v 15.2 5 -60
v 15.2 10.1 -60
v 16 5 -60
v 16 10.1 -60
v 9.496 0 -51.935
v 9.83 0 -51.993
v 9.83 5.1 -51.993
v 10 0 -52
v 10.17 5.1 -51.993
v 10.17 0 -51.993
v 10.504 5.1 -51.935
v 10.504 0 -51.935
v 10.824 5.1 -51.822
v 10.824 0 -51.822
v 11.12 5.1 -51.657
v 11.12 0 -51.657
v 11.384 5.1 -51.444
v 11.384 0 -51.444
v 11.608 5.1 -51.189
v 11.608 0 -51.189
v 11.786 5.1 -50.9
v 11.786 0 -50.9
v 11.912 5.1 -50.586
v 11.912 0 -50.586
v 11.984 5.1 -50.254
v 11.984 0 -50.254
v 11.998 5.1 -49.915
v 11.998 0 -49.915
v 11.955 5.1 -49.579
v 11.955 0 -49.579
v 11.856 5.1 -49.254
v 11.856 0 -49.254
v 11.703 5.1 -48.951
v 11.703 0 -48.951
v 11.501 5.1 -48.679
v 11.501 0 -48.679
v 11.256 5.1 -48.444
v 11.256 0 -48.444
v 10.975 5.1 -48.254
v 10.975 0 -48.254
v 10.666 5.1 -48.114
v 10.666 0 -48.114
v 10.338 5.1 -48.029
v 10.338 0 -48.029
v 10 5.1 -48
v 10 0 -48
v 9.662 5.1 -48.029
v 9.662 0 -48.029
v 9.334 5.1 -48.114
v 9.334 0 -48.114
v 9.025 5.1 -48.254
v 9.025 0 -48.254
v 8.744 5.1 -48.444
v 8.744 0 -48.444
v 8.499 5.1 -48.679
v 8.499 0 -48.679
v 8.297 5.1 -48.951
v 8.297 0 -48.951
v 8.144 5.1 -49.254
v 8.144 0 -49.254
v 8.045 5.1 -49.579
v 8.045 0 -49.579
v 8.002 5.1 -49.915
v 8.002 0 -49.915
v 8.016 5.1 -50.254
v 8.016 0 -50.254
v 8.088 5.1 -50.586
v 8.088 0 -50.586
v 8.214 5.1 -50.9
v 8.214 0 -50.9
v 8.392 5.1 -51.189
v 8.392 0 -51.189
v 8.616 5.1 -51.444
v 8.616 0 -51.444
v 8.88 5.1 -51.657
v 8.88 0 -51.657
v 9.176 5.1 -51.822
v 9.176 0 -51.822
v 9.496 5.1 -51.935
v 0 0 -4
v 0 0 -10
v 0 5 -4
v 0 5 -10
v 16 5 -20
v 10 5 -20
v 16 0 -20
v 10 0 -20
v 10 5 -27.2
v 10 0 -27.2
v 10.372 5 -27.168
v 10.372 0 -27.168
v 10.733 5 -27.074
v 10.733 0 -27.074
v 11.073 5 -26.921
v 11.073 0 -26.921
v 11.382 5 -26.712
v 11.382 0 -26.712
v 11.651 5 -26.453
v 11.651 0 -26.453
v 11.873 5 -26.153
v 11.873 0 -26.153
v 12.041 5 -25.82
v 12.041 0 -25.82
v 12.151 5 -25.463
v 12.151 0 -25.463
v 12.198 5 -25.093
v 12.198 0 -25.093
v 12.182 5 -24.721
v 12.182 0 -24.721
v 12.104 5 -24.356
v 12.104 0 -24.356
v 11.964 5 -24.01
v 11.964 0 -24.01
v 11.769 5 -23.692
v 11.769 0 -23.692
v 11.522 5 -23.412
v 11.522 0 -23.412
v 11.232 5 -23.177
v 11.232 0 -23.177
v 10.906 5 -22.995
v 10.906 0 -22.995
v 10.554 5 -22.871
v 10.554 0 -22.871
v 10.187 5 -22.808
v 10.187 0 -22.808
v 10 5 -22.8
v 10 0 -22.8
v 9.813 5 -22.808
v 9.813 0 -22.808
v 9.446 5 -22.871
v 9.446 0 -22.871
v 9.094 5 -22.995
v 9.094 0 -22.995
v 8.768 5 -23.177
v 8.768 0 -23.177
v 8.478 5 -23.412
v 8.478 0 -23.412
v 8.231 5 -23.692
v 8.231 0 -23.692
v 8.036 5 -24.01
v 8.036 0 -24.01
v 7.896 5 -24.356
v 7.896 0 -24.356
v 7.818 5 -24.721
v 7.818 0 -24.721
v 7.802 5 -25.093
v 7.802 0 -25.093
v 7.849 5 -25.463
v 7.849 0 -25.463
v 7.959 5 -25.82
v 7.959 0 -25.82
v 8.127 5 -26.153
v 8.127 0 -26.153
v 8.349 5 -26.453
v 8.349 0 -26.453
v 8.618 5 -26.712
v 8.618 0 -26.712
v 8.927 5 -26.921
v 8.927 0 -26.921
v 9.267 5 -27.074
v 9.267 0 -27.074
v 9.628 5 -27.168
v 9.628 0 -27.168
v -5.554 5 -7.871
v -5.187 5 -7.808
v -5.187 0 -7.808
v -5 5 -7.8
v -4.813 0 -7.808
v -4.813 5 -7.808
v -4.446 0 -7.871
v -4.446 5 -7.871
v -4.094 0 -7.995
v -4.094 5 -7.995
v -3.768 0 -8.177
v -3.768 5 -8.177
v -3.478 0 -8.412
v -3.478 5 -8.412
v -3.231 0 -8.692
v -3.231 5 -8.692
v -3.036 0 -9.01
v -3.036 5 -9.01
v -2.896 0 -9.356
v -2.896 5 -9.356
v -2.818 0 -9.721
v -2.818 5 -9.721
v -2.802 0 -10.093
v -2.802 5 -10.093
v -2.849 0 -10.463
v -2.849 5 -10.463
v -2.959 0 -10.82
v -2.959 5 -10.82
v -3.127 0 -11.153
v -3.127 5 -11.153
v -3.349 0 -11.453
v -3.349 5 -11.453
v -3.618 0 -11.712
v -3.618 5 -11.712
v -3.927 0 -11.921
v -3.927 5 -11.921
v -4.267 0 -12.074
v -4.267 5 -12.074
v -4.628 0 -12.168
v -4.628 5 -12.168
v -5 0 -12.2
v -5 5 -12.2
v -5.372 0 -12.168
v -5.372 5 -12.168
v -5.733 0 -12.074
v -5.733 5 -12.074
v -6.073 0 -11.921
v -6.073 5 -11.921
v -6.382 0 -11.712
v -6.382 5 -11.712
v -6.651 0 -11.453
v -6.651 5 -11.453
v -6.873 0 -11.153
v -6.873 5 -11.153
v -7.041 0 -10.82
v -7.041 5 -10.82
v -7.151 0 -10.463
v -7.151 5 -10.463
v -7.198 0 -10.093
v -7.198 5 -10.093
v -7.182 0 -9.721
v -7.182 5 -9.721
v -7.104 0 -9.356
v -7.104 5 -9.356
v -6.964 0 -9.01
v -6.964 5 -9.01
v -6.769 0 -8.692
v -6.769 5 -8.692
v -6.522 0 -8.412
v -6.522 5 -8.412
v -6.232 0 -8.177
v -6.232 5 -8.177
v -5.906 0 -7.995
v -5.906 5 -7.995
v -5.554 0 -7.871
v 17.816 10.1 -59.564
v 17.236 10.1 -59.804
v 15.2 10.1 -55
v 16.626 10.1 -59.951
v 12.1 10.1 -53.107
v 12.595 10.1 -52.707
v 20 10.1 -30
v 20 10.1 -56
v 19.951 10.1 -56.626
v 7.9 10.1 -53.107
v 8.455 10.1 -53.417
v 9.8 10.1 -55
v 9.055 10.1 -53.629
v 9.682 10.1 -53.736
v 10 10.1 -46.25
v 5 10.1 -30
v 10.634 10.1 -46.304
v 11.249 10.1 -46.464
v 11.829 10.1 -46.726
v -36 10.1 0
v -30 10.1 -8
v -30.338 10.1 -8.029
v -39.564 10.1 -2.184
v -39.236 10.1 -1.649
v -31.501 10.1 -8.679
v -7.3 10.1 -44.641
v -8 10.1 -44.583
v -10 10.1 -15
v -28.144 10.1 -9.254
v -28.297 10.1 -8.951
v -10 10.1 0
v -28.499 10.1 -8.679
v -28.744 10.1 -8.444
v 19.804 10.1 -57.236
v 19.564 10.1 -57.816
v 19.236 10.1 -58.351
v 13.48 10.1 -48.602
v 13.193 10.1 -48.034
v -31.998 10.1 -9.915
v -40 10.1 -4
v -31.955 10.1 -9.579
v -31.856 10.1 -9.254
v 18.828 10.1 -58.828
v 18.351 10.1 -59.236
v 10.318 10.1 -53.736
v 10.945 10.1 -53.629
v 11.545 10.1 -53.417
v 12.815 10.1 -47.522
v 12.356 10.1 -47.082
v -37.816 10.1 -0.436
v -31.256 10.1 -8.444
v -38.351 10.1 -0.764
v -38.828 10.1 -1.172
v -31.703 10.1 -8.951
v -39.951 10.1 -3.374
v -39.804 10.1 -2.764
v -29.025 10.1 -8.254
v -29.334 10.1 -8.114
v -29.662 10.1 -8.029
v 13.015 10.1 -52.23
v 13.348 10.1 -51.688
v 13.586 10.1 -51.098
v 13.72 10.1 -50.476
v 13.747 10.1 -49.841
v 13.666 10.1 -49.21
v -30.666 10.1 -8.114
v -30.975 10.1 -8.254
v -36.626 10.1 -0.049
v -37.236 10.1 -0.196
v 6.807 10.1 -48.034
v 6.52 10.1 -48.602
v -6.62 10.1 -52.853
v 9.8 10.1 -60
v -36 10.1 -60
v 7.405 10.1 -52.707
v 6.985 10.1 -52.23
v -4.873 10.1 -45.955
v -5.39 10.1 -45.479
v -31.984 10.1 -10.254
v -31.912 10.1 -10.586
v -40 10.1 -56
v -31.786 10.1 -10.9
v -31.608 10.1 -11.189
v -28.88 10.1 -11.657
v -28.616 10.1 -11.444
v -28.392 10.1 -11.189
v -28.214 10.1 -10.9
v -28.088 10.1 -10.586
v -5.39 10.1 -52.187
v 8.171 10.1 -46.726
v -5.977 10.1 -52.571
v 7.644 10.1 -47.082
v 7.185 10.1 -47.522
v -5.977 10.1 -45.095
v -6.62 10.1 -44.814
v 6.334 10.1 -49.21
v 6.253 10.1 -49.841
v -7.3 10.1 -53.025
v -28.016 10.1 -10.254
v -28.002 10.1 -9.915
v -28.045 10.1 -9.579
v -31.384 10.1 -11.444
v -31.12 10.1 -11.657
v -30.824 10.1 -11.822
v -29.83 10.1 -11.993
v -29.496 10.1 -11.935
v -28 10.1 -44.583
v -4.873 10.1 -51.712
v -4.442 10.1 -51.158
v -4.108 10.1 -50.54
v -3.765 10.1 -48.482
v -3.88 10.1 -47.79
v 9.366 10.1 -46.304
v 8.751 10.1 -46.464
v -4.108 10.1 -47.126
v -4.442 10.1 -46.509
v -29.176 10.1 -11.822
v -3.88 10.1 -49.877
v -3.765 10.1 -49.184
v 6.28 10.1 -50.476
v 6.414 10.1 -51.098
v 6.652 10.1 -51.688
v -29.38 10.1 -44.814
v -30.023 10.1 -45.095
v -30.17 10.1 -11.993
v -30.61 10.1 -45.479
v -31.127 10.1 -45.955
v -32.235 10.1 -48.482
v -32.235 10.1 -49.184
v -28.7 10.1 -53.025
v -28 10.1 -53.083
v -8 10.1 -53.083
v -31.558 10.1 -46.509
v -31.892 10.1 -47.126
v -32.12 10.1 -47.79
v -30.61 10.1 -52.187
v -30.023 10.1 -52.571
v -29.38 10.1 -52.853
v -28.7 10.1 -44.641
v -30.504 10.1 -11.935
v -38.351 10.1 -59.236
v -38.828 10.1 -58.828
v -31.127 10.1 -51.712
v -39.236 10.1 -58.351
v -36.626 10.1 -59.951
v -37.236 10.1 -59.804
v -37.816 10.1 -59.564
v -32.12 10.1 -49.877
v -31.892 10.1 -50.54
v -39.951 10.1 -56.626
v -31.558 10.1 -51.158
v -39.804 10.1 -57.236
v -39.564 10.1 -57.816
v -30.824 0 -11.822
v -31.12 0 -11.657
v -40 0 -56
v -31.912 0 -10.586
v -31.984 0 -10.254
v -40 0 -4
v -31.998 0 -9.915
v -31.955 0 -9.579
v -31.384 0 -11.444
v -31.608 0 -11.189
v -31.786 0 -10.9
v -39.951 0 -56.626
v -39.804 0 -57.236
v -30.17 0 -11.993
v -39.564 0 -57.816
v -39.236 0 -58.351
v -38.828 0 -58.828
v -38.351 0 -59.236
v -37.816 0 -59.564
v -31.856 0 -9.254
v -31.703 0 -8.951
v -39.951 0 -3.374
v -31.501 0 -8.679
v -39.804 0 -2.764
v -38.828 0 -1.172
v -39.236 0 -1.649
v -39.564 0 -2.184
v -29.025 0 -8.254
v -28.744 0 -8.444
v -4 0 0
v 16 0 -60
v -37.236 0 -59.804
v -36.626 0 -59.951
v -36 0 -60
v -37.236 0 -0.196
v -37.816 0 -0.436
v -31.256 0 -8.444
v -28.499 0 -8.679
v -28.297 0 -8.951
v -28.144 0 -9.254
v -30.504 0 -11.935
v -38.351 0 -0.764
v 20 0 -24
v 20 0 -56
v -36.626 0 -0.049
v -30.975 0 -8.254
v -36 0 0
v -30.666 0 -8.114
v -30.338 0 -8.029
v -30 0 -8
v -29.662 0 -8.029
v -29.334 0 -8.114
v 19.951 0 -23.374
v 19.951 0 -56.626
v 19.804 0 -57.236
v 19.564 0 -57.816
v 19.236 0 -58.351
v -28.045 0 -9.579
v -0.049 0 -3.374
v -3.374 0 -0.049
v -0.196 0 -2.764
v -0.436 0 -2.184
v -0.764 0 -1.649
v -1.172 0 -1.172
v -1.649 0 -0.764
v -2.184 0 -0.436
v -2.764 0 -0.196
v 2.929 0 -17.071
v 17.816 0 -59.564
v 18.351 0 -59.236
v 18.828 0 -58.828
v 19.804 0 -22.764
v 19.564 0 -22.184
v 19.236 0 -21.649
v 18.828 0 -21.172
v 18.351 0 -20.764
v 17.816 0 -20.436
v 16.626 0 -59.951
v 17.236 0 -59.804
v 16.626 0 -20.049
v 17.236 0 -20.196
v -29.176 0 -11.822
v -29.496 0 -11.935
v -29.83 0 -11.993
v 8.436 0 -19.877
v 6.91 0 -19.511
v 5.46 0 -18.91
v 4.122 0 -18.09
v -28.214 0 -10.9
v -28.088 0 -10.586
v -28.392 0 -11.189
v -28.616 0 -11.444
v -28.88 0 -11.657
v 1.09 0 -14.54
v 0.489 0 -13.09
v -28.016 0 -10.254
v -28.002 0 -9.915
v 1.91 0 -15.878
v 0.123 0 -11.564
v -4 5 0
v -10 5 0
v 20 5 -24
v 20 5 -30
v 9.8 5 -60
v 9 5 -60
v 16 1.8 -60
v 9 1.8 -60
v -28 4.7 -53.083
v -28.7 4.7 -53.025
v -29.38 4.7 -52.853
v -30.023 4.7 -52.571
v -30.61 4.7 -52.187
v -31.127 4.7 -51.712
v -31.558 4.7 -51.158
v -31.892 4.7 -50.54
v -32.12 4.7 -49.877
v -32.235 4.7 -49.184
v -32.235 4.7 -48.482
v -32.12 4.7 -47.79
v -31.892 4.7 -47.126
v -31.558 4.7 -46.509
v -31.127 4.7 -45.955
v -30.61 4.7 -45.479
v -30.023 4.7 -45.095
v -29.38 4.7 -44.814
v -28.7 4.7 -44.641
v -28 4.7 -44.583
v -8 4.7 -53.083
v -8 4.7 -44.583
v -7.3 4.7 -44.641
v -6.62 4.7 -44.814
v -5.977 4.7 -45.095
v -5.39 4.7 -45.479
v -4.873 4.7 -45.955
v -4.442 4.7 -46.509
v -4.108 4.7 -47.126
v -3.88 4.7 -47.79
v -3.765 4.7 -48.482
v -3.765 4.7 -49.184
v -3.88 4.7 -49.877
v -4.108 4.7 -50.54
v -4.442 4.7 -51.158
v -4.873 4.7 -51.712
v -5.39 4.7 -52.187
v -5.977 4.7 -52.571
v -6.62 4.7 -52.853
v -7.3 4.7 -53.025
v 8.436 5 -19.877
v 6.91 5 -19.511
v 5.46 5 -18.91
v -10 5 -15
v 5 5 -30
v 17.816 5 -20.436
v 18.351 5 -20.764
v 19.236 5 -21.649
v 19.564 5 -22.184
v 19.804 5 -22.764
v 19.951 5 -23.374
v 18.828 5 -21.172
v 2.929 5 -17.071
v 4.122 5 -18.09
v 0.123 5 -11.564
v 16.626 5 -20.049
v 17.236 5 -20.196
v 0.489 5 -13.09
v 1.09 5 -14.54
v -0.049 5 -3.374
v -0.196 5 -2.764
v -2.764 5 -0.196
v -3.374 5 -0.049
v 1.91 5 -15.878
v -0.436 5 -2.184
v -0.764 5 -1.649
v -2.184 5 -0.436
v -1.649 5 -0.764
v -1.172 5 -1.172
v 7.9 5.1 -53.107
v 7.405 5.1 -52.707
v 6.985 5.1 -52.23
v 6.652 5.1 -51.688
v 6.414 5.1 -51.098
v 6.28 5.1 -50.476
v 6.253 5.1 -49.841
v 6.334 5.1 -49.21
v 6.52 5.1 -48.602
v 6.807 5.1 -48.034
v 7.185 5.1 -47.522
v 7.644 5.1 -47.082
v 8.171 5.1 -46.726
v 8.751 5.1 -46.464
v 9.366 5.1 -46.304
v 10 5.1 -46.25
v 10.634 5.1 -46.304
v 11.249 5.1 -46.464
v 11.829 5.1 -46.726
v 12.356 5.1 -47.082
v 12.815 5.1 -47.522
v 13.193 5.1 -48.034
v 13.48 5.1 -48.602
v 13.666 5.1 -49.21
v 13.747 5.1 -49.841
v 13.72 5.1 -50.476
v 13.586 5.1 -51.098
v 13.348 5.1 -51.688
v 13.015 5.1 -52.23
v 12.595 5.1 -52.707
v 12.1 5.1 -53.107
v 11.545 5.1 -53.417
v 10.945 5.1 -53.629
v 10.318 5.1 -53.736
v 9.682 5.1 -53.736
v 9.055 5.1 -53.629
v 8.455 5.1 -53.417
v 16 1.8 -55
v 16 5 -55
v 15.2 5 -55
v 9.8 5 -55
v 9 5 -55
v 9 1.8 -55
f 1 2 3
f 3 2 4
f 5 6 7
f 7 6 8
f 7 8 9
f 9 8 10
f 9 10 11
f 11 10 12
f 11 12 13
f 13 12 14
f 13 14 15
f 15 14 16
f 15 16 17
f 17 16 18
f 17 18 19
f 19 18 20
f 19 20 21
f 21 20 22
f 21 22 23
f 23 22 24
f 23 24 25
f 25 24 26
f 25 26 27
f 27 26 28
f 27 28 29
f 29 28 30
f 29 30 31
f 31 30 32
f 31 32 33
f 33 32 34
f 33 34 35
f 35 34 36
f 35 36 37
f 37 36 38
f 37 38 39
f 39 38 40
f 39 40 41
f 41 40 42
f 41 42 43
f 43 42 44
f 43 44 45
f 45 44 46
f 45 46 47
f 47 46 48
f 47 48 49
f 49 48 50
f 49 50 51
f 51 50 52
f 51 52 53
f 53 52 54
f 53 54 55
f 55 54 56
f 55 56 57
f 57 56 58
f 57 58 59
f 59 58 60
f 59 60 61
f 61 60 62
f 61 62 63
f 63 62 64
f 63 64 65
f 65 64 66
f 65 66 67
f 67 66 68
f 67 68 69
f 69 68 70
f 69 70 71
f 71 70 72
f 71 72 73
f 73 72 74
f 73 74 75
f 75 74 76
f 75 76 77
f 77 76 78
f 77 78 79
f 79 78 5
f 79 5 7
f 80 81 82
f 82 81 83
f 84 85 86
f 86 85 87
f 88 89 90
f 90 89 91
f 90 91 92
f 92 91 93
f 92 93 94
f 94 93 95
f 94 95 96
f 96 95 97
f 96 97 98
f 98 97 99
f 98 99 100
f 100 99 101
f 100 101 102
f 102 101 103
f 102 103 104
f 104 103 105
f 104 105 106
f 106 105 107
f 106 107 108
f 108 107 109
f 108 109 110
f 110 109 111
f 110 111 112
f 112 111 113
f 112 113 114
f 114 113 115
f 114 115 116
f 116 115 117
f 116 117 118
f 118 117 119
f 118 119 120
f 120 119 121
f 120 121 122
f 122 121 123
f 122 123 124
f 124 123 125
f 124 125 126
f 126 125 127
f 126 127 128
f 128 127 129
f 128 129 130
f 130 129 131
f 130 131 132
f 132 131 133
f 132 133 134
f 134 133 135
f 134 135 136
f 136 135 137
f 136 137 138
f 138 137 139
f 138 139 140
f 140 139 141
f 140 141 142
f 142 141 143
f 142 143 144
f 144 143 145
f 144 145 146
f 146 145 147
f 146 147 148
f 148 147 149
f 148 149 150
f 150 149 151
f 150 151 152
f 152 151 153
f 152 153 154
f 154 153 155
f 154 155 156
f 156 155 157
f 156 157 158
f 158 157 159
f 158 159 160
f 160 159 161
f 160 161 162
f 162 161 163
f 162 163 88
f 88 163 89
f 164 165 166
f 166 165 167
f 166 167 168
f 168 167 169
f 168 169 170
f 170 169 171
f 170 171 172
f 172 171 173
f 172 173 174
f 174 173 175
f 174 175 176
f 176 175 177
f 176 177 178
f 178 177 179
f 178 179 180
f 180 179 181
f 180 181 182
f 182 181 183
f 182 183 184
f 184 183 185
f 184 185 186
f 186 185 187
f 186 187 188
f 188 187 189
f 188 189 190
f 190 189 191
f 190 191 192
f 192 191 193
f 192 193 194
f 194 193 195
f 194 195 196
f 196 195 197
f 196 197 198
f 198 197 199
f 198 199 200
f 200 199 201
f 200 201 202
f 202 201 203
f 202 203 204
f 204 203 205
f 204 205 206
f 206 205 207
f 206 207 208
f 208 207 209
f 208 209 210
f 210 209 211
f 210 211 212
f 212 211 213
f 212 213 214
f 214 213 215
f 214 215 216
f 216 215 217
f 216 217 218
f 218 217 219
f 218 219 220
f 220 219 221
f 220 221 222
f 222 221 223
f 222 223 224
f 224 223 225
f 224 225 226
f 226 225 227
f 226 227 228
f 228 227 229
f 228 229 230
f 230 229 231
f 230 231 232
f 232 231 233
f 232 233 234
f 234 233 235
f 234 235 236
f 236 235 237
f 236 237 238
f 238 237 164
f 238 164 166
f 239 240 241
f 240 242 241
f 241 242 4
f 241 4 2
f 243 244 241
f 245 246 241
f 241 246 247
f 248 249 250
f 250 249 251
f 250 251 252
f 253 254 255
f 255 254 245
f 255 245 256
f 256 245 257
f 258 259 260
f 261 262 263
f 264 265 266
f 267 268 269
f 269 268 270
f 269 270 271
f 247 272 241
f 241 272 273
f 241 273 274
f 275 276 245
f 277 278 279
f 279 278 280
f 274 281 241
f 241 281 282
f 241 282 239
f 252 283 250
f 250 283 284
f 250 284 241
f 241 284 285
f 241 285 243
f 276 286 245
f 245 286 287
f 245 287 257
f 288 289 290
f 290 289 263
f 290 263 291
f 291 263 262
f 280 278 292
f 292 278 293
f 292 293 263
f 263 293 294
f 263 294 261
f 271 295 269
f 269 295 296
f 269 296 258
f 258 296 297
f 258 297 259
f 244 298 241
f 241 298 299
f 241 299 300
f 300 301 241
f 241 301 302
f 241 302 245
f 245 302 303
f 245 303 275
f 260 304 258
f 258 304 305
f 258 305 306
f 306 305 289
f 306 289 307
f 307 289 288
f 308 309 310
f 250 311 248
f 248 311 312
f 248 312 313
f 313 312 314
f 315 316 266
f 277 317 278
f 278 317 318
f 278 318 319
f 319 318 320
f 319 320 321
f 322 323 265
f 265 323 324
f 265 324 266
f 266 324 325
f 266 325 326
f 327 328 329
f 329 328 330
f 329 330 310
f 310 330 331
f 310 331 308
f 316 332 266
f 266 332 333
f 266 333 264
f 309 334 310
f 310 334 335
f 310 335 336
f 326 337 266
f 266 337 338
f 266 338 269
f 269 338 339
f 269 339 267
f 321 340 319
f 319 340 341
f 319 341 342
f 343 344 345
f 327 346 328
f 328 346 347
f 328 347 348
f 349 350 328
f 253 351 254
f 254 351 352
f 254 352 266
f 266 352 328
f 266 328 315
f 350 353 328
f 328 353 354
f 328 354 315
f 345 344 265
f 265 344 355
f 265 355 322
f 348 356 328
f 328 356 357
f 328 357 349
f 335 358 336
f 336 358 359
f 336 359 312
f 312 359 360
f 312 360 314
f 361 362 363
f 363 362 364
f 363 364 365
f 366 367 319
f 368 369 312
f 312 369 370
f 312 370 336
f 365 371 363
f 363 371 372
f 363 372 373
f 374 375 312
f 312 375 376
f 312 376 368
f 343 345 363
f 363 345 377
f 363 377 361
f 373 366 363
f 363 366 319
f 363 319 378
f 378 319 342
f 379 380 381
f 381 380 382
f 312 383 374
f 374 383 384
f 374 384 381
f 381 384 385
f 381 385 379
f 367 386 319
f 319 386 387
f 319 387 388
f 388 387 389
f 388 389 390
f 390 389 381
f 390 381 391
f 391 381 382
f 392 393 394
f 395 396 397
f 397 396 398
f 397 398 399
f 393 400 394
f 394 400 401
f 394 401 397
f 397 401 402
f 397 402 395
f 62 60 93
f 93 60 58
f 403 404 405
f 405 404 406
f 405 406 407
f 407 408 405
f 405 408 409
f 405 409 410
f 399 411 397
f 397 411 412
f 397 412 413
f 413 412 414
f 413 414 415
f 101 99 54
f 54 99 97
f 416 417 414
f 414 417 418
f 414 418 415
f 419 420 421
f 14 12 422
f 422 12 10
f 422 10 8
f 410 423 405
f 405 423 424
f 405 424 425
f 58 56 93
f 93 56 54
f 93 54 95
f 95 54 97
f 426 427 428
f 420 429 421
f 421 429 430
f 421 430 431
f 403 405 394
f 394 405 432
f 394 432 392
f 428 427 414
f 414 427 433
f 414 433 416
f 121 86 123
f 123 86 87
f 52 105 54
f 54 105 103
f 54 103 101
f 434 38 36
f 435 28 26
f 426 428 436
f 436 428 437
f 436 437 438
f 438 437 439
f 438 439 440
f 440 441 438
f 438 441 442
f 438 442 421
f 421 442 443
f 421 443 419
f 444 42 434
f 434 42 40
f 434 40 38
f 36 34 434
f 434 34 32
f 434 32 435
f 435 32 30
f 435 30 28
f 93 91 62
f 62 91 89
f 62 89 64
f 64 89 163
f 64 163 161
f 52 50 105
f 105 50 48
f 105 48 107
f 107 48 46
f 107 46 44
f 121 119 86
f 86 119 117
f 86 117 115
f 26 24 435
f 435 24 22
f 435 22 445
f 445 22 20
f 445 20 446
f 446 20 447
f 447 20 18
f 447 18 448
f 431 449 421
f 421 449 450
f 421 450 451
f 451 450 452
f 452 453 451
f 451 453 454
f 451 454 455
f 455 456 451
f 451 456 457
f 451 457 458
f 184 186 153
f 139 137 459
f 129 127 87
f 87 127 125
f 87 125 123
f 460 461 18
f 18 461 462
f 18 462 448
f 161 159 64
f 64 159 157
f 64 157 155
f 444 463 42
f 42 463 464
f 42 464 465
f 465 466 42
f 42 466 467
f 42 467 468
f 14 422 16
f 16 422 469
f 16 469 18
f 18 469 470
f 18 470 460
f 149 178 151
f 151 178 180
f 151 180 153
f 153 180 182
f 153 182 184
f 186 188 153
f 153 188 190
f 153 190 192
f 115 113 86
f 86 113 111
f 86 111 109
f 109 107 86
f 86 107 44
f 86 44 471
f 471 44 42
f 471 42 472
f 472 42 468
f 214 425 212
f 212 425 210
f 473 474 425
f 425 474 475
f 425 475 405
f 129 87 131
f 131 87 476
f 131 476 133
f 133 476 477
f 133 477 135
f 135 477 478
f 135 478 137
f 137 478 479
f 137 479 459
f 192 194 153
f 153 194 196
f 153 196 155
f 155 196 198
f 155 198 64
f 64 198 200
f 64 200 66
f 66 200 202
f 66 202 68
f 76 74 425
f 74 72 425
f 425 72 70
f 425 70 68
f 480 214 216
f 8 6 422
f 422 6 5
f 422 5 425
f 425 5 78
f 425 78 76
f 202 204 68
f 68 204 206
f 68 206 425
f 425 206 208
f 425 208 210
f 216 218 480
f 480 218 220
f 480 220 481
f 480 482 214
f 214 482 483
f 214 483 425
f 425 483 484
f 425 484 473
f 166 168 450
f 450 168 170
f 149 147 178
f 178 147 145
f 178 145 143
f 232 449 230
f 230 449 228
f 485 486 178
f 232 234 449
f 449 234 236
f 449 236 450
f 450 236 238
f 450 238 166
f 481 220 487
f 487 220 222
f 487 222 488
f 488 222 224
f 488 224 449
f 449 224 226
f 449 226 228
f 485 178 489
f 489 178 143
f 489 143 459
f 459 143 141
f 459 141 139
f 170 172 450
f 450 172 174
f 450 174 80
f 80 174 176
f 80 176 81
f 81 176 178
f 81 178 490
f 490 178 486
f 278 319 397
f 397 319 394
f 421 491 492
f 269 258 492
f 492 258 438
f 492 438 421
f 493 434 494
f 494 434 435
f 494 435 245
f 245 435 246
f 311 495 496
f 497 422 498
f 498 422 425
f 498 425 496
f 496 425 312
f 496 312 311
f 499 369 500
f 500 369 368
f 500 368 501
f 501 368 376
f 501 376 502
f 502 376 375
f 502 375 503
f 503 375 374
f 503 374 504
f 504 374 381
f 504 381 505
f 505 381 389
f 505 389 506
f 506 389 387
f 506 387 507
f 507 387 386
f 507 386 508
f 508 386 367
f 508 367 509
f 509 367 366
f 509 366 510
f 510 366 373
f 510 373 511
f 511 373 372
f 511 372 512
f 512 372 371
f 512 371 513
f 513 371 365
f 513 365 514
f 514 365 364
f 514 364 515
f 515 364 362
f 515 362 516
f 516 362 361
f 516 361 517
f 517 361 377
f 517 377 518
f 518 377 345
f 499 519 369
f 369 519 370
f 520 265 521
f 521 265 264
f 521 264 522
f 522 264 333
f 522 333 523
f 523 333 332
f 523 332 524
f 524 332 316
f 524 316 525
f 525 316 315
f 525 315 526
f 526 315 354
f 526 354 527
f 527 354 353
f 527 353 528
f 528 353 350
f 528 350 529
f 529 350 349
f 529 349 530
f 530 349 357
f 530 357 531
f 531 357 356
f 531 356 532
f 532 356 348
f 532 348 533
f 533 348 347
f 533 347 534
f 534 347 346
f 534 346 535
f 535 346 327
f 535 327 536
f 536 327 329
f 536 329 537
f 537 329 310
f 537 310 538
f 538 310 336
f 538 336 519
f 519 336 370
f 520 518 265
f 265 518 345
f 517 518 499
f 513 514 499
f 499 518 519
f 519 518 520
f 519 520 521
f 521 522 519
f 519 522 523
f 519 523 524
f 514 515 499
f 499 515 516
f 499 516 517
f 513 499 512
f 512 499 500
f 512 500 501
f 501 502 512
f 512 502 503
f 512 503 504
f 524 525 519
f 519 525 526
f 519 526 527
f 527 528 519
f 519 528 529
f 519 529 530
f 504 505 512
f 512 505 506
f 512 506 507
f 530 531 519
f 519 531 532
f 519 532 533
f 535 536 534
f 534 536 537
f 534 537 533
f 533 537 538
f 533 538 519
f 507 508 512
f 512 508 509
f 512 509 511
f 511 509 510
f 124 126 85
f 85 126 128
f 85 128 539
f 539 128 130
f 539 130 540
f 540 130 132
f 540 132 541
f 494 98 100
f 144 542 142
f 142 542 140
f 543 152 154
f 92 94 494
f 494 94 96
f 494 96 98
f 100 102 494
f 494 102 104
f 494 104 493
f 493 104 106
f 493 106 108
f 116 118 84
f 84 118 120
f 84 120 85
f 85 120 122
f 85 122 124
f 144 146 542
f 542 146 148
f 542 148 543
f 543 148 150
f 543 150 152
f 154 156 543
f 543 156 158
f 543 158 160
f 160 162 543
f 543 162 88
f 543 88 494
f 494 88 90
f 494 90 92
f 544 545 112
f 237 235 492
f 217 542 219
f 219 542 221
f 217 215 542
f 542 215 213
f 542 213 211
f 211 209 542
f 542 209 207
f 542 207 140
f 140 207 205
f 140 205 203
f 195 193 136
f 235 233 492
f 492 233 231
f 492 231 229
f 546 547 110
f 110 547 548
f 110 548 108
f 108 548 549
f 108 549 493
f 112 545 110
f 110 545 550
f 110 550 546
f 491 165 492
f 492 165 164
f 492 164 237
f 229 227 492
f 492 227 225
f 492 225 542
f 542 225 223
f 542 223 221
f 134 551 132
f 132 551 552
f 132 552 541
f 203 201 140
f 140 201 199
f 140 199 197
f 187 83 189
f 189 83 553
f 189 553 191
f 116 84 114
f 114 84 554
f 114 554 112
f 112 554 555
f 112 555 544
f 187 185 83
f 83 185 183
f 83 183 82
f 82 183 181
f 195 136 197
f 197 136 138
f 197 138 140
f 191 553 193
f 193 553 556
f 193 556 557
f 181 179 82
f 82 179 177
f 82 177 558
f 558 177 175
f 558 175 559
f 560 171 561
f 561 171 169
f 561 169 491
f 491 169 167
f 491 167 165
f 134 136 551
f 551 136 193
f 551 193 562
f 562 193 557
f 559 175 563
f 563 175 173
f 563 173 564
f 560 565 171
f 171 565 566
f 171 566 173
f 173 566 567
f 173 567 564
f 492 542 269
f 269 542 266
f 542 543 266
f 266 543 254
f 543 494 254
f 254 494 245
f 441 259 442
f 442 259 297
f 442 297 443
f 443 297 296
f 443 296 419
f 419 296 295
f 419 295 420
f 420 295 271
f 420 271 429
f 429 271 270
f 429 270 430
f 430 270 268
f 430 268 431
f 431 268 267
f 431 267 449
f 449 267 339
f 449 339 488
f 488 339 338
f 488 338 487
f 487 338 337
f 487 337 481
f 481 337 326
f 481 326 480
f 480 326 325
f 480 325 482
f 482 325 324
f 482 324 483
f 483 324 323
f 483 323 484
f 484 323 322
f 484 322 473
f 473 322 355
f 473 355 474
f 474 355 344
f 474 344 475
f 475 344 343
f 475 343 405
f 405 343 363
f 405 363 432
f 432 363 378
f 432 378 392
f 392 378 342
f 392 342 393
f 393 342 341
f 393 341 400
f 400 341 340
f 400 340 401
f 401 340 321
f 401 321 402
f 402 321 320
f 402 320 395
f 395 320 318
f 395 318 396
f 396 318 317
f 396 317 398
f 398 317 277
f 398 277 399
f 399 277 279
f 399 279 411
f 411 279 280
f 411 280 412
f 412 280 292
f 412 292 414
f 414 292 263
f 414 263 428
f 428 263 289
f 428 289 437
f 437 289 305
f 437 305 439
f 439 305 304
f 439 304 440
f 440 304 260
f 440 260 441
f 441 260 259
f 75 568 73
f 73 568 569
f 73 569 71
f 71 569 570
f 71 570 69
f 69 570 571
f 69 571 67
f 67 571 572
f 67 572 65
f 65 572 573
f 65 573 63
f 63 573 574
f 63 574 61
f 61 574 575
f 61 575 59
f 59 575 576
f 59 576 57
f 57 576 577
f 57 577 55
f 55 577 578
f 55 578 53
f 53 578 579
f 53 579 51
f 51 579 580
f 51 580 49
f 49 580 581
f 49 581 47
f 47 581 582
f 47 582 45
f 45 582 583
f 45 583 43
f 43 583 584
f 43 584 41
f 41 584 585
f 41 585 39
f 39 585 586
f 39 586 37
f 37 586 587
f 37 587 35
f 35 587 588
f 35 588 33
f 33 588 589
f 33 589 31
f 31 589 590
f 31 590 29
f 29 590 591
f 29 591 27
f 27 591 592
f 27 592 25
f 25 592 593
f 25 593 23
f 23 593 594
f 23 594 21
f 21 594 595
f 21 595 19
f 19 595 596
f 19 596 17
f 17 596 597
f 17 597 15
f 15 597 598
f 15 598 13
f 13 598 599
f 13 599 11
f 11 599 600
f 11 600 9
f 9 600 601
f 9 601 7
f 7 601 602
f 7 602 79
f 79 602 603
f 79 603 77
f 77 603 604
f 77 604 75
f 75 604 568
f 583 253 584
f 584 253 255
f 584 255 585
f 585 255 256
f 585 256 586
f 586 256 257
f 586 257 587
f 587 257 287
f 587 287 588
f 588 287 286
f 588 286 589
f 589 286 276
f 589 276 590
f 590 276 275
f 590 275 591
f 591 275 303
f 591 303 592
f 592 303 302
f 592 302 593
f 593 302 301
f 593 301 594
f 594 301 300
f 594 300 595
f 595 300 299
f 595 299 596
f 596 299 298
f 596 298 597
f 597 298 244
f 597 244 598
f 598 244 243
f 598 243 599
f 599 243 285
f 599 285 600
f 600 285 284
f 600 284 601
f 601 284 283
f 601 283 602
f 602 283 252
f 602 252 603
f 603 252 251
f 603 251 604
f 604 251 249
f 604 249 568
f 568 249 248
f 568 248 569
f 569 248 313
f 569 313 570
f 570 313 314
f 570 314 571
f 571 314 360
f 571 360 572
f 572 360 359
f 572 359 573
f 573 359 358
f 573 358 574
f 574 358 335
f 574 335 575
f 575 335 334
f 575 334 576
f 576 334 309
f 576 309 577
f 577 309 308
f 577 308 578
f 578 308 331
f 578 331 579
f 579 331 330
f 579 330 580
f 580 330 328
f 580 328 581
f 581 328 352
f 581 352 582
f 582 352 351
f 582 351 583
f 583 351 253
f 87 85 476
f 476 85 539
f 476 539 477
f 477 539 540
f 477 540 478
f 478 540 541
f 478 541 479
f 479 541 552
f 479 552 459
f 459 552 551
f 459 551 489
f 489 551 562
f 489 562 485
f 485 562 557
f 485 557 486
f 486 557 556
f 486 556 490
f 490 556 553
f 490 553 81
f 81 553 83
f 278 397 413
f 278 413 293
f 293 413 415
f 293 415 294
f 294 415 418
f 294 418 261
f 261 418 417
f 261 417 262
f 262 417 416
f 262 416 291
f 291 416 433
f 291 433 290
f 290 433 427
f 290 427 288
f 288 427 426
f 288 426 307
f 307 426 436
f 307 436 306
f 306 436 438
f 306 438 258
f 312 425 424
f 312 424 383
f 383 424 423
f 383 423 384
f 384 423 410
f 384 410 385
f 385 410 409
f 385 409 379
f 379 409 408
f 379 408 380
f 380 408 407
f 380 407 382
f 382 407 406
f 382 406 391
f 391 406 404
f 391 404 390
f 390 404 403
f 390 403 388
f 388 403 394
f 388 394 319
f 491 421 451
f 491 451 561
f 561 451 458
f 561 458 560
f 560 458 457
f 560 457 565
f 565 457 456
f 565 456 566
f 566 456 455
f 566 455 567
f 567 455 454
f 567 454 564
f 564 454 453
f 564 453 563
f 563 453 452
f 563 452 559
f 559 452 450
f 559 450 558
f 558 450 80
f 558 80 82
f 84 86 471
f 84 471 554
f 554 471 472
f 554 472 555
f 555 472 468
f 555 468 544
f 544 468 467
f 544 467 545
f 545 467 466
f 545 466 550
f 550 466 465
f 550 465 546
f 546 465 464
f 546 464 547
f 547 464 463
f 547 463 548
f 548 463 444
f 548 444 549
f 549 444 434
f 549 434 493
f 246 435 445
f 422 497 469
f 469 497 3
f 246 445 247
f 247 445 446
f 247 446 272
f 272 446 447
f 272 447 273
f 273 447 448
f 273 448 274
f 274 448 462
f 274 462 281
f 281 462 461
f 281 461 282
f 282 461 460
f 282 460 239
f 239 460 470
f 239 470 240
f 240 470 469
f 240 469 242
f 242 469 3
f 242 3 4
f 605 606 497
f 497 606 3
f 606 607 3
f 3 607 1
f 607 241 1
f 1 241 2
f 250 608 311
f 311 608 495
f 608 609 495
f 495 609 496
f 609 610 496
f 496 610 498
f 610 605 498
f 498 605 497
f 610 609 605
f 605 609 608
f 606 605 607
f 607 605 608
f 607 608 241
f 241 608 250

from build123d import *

# Parameters (mm, degrees)
SKETCH1_R           = 2.2
BOSS_EXTRUDE1_DEPTH = 10.1
CUT_EXTRUDE2_DEPTH  = 5.4
CUT_EXTRUDE4_DEPTH  = 5.1
SKETCH9_R           = 2
CUT_EXTRUDE5_DEPTH  = 73.814902321
SKETCH10_R          = 3.75
CUT_EXTRUDE6_DEPTH  = 5
FILLET2_R           = 10
FILLET3_R           = 4
CUT_EXTRUDE7_DEPTH  = 5


with BuildPart() as part:
    # Sketch1 → Boss-Extrude1 (new body)
    with BuildSketch(Plane(origin=(0, 0, 0), x_dir=(1, 0, 0), z_dir=(0, 1, 0))):
        Polygon((0, 0), (0, 20), (20, 20), (20, 60), (-40, 60), (-40, 0), align=None)
        with Locations(Location((10, 25, 0), (0, 0, 270))):
            Circle(SKETCH1_R, mode=Mode.SUBTRACT)
        with Locations(Location((-5, 10, 0), (0, 0, 90))):
            Circle(SKETCH1_R, mode=Mode.SUBTRACT)
    extrude(amount=BOSS_EXTRUDE1_DEPTH)

    # Sketch4 → Cut-Extrude2 (cut)
    with BuildSketch(Plane(origin=(0, 10.1, 0), x_dir=(1, 0, 0), z_dir=(0, 1, 0))):
        with BuildLine():
            Line((-28, 53.083248844), (-8, 53.083248844))
            ThreePointArc((-8, 53.083248844), (-3.75, 48.833248844), (-8, 44.583248844))
            Line((-8, 44.583248844), (-28, 44.583248844))
            ThreePointArc((-28, 44.583248844), (-32.25, 48.833248844), (-28, 53.083248844))
        make_face()
    extrude(amount=-CUT_EXTRUDE2_DEPTH, mode=Mode.SUBTRACT)

    # Sketch7 → Cut-Extrude4 (cut)
    with BuildSketch(Plane(origin=(0, 10.1, 0), x_dir=(1, 0, 0), z_dir=(0, 1, 0))):
        Polygon((20, 0), (-10, 0), (-10, 15), (5, 30), (20, 30), align=None)
    extrude(amount=-CUT_EXTRUDE4_DEPTH, mode=Mode.SUBTRACT)

    # Sketch9 → Cut-Extrude5 (cut, through all)
    with BuildSketch(Plane(origin=(0, 10.1, 0), x_dir=(1, 0, 0), z_dir=(0, 1, 0))):
        with Locations(Location((-30, 10, 0), (0, 0, 270))):
            Circle(SKETCH9_R)
        with Locations(Location((10, 50, 0), (0, 0, 90))):
            Circle(SKETCH9_R)
    extrude(amount=-CUT_EXTRUDE5_DEPTH, mode=Mode.SUBTRACT)

    # Sketch10 → Cut-Extrude6 (cut)
    with BuildSketch(Plane(origin=(0, 10.1, 0), x_dir=(1, 0, 0), z_dir=(0, 1, 0))):
        with Locations(Location((10, 50, 0), (0, 0, 270))):
            Circle(SKETCH10_R)
    extrude(amount=-CUT_EXTRUDE6_DEPTH, mode=Mode.SUBTRACT)

    # Fillet2
    fillet2_edges = [part.edges().sort_by_distance(p)[0] for p in [
        (0, 2.5, -20),
    ]]
    fillet(fillet2_edges, radius=FILLET2_R)

    # Fillet3
    fillet3_edges = [part.edges().sort_by_distance(p)[0] for p in [
        (-40, 5.05, -60),
        (20, 5.05, -60),
        (-40, 5.05, 0),
        (20, 2.5, -20),
        (0, 2.5, 0),
    ]]
    fillet(fillet3_edges, radius=FILLET3_R)

    # Sketch11 → Cut-Extrude7 (cut)
    with BuildSketch(Plane(origin=(0, 0, -60), x_dir=(-1, 0, 0), z_dir=(0, 0, -1))):
        Polygon((-16, 5), (-15.2, 5), (-15.2, 10.1), (-9.8, 10.1), (-9.8, 5), (-9, 5), (-9, 1.8), (-16, 1.8), align=None)
    extrude(amount=-CUT_EXTRUDE7_DEPTH, mode=Mode.SUBTRACT)


solid = part.part
